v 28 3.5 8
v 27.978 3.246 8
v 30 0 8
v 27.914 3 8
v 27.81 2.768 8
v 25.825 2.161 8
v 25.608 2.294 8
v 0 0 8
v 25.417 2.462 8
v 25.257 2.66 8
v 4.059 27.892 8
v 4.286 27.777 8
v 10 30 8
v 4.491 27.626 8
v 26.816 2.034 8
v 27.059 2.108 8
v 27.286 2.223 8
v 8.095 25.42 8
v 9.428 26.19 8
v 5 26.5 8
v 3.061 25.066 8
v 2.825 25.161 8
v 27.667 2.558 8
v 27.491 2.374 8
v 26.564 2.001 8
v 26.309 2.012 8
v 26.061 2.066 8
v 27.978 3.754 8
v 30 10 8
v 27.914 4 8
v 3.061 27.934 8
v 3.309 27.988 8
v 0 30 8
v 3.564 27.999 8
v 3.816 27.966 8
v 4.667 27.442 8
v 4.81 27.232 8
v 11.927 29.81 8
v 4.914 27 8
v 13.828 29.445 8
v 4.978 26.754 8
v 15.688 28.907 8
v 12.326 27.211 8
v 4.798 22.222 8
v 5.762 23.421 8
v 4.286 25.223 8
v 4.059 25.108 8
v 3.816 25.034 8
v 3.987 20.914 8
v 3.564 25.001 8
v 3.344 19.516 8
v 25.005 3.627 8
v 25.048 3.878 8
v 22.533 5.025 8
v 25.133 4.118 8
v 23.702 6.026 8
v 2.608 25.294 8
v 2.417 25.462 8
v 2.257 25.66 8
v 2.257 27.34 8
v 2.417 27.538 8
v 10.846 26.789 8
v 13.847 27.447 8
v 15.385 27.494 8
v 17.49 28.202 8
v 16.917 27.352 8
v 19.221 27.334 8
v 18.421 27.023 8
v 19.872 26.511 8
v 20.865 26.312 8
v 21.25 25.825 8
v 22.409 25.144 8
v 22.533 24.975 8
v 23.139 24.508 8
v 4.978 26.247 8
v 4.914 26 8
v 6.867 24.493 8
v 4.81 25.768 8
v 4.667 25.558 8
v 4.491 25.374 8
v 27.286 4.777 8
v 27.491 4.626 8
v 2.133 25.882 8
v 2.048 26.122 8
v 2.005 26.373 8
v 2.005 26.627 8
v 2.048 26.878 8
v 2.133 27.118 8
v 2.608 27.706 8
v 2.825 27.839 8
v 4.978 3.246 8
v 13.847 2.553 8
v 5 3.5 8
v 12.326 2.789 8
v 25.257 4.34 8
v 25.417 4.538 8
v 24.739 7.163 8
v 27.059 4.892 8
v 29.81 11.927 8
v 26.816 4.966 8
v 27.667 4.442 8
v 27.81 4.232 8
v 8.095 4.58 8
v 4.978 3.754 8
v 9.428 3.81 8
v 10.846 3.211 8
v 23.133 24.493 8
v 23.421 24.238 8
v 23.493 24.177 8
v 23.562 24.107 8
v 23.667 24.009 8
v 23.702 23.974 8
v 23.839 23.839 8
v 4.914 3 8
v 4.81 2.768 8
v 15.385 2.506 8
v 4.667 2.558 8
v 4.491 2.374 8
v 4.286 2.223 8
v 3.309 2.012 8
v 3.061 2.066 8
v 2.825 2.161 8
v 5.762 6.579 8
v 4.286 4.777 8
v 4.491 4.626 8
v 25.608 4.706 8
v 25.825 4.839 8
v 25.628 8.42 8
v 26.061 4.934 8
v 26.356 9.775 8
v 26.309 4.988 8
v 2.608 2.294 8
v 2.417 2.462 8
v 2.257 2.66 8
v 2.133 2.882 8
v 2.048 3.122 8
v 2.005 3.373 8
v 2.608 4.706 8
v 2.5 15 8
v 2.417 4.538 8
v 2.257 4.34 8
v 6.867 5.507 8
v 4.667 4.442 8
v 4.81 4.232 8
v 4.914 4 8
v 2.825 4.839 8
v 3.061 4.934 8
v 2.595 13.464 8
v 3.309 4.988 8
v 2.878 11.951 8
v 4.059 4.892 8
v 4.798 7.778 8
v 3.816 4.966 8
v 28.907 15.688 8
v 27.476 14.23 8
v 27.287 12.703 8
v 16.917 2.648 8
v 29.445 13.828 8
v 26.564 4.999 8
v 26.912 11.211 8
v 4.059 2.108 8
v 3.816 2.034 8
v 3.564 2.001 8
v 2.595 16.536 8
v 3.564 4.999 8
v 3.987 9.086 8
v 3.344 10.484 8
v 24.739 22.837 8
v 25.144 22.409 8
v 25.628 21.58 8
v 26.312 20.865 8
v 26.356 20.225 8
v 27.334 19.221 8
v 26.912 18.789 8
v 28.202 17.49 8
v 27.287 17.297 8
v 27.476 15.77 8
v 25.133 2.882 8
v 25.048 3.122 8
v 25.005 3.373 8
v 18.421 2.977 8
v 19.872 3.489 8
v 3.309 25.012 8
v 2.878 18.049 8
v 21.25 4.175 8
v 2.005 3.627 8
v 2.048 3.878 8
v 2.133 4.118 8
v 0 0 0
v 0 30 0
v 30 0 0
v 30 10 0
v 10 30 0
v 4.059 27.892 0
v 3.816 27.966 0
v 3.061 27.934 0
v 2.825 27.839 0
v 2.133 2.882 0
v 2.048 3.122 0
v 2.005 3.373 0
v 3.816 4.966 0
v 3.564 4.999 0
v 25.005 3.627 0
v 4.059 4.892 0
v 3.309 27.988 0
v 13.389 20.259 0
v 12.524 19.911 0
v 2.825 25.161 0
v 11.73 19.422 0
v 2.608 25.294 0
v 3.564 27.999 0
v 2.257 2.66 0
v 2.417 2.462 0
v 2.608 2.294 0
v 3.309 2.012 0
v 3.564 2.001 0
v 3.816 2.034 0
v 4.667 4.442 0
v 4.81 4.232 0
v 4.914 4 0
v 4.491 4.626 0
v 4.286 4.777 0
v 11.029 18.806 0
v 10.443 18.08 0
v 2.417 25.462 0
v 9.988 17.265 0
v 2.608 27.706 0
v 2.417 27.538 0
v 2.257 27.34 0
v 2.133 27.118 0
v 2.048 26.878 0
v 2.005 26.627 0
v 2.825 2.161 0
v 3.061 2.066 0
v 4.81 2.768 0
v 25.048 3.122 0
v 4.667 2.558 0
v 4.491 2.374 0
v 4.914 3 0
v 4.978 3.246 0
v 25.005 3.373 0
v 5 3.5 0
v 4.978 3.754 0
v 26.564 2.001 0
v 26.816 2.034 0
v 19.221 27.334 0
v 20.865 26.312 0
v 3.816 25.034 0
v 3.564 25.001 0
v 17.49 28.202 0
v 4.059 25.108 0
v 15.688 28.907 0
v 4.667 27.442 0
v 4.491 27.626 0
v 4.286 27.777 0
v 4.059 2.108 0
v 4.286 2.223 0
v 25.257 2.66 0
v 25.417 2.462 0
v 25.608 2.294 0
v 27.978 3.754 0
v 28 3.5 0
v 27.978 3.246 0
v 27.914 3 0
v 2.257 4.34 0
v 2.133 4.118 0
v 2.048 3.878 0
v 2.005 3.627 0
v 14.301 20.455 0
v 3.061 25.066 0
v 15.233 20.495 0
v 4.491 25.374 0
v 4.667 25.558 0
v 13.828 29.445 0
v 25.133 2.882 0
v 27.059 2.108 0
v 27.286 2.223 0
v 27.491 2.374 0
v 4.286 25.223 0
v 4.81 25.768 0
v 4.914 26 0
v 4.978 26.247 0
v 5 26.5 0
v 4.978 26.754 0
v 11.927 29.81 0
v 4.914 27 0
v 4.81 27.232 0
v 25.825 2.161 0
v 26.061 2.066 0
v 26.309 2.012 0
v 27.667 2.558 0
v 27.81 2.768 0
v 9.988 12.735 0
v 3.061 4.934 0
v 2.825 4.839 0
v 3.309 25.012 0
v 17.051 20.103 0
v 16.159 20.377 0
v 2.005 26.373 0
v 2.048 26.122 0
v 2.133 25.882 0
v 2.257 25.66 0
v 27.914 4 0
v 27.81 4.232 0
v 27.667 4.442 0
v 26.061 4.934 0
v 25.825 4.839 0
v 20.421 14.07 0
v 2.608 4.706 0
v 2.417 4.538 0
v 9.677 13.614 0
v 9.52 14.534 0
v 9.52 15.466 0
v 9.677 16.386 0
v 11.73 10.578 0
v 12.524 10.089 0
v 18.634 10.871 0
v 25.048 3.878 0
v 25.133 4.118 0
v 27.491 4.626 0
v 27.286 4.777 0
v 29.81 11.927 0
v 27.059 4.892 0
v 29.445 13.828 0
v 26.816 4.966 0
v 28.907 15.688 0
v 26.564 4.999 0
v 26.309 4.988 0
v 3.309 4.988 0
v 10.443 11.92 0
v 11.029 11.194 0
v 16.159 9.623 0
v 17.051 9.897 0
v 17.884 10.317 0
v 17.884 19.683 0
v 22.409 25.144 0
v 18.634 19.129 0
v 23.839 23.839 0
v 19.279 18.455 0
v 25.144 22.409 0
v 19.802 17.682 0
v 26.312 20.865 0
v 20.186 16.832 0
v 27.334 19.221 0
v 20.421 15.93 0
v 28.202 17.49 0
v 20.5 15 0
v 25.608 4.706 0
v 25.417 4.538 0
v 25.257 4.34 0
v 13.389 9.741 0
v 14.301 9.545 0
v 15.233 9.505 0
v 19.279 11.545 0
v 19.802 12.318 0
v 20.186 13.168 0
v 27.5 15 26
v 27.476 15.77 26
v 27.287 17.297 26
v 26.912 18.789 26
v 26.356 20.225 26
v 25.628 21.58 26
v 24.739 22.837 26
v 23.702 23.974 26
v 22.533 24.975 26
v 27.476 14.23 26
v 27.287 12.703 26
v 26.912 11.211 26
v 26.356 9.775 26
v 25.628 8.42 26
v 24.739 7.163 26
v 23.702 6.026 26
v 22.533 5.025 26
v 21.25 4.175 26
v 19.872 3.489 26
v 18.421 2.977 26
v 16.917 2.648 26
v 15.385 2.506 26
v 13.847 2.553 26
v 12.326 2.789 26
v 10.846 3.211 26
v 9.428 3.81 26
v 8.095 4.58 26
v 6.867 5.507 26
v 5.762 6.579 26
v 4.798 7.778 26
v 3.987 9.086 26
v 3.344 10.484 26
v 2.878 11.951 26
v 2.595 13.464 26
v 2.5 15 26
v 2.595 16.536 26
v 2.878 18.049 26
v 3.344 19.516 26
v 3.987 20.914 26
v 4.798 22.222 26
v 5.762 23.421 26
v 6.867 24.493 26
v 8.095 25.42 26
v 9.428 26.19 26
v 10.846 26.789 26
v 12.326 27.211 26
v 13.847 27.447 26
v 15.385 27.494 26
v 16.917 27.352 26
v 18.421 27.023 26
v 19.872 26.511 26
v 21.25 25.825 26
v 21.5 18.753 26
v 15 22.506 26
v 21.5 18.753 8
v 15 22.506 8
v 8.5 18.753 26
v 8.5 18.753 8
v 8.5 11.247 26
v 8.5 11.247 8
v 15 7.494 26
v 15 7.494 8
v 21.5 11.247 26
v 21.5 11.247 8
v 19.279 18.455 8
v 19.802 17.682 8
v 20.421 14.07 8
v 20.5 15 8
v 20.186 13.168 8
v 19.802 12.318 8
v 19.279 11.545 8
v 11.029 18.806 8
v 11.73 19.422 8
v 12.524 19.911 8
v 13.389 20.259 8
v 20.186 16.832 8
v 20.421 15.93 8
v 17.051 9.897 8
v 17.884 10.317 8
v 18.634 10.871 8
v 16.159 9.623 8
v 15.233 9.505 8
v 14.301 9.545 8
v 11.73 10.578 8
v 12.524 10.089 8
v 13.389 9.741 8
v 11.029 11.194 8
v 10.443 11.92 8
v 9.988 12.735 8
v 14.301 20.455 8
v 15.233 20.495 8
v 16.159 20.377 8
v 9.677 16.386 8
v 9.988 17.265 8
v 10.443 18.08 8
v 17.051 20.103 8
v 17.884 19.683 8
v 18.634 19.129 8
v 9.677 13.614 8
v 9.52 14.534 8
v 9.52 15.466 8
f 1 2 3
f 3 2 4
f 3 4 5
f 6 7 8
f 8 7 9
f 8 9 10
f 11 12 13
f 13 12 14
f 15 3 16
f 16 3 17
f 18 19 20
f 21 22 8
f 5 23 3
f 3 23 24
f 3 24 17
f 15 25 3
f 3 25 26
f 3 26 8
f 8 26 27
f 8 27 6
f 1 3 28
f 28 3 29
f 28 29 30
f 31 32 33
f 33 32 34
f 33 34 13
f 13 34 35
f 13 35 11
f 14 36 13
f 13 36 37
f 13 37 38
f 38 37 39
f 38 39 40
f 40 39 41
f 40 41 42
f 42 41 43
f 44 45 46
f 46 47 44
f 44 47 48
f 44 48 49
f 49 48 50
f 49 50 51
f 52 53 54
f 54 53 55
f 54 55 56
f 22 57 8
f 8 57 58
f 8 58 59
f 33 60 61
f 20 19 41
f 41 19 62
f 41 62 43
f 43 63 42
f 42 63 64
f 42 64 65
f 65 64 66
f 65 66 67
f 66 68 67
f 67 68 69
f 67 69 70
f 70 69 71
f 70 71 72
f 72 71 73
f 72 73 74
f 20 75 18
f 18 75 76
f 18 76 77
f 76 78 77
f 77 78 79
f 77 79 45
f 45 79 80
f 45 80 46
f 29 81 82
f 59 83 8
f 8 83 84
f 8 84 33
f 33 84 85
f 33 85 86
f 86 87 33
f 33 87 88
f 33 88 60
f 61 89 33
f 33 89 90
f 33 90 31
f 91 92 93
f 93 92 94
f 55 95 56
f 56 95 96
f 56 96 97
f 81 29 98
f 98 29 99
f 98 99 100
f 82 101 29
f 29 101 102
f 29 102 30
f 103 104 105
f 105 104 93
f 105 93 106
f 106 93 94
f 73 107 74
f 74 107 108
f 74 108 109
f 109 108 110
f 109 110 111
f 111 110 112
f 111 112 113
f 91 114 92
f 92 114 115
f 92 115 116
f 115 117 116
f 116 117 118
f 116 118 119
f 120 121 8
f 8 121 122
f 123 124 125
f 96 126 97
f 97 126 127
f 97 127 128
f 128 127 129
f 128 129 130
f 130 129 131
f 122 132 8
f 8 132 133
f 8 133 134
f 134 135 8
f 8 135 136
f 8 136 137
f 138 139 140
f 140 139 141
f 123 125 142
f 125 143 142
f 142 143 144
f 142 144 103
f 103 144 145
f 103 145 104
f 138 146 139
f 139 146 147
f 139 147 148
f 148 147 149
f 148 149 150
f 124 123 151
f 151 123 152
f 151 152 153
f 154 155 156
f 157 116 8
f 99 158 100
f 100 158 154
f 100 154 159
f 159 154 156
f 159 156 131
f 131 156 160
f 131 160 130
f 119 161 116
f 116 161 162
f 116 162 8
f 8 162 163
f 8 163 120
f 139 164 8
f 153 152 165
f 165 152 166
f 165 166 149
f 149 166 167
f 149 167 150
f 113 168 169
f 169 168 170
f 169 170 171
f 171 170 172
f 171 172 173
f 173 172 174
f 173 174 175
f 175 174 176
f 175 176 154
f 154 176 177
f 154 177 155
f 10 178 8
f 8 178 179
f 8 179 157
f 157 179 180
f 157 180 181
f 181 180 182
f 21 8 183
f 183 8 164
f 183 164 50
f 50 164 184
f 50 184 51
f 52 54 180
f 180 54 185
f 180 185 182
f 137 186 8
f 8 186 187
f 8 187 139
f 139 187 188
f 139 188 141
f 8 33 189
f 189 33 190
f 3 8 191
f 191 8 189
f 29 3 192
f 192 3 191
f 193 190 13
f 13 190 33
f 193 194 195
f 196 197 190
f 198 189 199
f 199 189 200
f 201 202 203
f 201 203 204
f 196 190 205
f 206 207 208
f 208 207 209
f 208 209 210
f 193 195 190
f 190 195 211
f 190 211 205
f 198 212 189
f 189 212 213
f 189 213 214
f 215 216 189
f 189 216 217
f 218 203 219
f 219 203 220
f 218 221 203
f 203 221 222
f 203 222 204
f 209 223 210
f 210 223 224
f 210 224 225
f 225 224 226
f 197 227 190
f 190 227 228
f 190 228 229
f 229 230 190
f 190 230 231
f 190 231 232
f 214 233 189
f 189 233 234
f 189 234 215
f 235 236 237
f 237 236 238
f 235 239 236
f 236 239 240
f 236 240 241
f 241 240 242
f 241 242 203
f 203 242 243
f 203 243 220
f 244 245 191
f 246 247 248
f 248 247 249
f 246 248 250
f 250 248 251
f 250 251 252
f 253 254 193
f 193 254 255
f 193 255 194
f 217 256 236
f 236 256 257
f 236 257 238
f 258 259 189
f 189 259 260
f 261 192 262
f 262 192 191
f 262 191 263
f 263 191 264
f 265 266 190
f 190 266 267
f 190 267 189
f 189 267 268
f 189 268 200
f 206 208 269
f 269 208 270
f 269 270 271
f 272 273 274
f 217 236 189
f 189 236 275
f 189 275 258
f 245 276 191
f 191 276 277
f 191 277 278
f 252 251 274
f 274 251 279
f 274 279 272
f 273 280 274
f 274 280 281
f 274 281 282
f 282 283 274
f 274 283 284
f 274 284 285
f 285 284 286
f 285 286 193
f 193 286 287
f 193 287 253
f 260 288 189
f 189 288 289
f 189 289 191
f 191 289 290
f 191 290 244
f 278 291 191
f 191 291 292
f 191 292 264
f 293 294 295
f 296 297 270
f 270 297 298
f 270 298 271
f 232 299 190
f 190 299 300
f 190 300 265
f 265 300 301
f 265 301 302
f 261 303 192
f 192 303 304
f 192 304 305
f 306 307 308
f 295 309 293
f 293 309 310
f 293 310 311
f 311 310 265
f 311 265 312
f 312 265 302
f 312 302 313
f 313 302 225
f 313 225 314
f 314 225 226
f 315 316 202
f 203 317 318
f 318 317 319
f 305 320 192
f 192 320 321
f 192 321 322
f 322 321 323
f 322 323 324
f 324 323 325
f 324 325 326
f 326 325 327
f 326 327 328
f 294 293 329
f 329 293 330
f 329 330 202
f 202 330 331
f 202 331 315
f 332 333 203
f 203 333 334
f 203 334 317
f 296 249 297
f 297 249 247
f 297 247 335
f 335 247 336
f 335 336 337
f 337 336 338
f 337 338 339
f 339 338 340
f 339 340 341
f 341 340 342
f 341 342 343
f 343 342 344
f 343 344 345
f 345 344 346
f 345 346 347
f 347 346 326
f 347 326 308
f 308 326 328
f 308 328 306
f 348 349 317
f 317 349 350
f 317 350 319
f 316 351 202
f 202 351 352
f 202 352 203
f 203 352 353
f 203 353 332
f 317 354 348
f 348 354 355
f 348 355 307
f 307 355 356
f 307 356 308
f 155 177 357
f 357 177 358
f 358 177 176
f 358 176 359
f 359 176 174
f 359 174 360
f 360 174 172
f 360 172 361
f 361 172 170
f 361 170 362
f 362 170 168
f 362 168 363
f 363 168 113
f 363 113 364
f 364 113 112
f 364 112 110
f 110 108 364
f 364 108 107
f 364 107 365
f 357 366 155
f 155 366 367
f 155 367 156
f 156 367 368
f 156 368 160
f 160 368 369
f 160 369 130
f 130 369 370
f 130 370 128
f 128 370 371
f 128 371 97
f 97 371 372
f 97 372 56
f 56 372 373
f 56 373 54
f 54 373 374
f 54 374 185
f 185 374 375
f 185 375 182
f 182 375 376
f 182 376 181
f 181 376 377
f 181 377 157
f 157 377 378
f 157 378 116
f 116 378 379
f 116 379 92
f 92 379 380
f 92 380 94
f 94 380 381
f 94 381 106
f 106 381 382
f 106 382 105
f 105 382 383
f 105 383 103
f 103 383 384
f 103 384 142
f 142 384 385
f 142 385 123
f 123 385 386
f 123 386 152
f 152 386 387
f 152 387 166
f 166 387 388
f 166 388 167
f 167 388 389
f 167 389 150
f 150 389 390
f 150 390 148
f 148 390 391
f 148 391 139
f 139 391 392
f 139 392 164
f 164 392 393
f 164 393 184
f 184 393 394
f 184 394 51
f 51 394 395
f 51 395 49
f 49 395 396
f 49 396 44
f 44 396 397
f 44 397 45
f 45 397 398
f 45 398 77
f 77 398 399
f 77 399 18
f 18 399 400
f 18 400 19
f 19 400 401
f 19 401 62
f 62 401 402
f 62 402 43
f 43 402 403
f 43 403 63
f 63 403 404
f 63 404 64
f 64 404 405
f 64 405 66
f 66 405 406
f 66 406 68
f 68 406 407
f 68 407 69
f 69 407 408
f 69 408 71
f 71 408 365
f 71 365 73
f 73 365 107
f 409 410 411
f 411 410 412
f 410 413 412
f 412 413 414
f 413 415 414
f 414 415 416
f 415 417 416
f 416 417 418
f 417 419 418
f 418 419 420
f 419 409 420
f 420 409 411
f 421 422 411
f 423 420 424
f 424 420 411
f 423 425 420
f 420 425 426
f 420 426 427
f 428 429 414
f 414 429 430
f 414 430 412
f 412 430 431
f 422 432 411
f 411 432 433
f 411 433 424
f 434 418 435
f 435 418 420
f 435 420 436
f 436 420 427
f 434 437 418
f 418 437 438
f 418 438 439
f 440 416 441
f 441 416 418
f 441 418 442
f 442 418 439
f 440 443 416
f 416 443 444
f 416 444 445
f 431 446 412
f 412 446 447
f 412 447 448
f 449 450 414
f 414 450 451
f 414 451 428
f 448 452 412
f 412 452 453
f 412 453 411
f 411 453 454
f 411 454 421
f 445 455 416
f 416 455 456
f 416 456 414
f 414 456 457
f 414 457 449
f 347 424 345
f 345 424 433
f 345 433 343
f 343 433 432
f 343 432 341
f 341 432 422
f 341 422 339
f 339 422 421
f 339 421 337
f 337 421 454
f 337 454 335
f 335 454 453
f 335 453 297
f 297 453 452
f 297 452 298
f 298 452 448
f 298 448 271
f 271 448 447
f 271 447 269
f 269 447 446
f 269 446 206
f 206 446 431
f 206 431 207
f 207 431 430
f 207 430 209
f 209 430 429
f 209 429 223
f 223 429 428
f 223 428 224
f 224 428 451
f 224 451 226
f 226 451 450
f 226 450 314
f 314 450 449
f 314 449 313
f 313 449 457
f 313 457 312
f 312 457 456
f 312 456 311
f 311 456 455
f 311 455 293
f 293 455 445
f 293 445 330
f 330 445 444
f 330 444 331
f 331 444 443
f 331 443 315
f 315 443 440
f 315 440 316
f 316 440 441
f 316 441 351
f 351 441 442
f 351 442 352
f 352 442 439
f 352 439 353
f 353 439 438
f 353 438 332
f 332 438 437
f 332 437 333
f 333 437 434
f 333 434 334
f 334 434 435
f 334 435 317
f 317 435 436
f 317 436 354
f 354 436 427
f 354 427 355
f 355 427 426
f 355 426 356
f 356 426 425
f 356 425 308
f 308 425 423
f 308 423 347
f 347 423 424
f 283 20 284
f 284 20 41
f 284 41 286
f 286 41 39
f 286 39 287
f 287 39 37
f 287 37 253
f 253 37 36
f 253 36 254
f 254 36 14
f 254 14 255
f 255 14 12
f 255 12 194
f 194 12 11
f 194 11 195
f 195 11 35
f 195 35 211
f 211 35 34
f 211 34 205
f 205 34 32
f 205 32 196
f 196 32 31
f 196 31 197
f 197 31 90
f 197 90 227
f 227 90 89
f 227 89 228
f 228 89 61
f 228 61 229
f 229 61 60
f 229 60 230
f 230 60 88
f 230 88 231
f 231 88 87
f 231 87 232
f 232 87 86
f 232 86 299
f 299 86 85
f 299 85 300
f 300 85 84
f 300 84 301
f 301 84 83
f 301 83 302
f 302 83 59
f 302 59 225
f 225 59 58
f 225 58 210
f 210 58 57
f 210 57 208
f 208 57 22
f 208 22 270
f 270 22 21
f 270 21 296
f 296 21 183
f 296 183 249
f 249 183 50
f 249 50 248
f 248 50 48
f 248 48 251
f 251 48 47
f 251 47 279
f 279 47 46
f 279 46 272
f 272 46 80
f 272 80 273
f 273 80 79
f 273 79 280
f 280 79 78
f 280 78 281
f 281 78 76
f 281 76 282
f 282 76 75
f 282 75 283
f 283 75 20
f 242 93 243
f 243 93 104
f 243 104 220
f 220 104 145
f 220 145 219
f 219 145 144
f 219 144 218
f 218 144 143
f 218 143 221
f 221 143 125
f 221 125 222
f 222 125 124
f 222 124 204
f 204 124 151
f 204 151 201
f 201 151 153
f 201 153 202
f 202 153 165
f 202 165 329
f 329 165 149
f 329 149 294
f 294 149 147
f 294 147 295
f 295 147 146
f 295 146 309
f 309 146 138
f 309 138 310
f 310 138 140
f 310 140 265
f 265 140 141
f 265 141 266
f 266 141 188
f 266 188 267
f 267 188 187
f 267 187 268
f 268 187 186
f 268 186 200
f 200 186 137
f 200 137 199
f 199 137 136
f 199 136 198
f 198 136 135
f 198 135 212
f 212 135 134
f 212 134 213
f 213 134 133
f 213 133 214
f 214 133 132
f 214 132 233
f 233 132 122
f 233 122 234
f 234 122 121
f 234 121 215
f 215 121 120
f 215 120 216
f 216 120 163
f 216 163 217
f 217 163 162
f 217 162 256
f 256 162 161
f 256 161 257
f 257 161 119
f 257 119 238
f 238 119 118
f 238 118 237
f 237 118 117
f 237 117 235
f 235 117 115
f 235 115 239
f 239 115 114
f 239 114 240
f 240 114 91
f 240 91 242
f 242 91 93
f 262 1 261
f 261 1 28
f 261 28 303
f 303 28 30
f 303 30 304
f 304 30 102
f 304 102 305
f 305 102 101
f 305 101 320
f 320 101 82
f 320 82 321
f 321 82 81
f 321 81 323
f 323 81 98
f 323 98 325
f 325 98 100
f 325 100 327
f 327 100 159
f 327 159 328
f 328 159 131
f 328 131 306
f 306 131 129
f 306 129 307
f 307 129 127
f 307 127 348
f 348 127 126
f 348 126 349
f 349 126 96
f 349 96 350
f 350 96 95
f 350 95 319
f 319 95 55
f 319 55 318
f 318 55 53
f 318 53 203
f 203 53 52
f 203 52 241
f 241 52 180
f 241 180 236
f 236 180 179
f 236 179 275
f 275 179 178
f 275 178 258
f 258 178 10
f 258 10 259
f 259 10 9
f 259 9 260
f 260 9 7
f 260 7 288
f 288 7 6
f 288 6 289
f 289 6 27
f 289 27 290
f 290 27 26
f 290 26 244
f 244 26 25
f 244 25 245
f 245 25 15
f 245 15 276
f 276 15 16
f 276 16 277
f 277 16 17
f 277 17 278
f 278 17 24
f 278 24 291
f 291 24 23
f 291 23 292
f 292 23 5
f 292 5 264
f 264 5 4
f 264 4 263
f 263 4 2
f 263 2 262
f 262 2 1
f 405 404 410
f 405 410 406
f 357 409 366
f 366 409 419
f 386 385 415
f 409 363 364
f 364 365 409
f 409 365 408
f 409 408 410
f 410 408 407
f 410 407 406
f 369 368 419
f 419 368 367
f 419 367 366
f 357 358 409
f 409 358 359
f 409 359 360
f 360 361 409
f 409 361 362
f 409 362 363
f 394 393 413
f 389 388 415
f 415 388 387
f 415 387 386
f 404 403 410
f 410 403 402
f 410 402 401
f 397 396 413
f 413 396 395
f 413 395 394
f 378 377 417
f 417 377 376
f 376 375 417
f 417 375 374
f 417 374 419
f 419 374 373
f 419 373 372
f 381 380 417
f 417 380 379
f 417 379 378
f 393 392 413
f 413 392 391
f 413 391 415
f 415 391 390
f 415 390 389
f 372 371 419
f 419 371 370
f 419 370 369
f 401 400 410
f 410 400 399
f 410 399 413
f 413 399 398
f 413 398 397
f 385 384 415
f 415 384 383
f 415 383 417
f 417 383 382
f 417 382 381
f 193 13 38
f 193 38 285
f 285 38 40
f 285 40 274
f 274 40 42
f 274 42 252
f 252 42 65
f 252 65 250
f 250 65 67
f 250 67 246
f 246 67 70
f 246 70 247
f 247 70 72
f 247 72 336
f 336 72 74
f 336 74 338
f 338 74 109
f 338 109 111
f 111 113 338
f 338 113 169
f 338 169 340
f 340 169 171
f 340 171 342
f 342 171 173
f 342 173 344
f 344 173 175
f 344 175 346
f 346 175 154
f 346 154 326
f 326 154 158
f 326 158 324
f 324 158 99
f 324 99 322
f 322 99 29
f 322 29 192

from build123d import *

# Parameters (mm, degrees)
IZIM1_W                     = 30
IZIM1_H                     = 30
Y_KSEKLIK_EKSTR_ZYON1_DEPTH = 8
IZIM2_R                     = 12.5
Y_KSEKLIK_EKSTR_ZYON2_DEPTH = 8
IZIM3_R                     = 5.5
KES_EKSTR_ZYON1_DEPTH       = 8
IZIM4_R                     = 1.5
KES_EKSTR_ZYON2_DEPTH       = 8
IZIM5_R                     = 12.5
Y_KSEKLIK_EKSTR_ZYON3_DEPTH = 10
KES_EKSTR_ZYON3_DEPTH       = 10


with BuildPart() as part:
    # Çizim1 → Yükseklik-Ekstrüzyon1 (new body)
    with BuildSketch(Plane.XY):
        with Locations((15, 15)):
            Rectangle(IZIM1_W, IZIM1_H)
    extrude(amount=Y_KSEKLIK_EKSTR_ZYON1_DEPTH)

    # Çizim2 → Yükseklik-Ekstrüzyon2 (add)
    with BuildSketch(Plane.XY.offset(8)):
        with Locations(Location((15, 15, 0), (0, 0, 180))):
            Circle(IZIM2_R)
        Polygon((15, 22.505553499), (8.5, 18.75277675), (8.5, 11.24722325), (15, 7.494446501), (21.5, 11.24722325), (21.5, 18.75277675), align=None, mode=Mode.SUBTRACT)
    extrude(amount=Y_KSEKLIK_EKSTR_ZYON2_DEPTH)

    # Çizim3 → Kes-Ekstrüzyon1 (cut)
    with BuildSketch(Plane.XY.offset(8)):
        with Locations((15, 15)):
            Circle(IZIM3_R)
    extrude(amount=-KES_EKSTR_ZYON1_DEPTH, mode=Mode.SUBTRACT)

    # Çizim4 → Kes-Ekstrüzyon2 (cut)
    with BuildSketch(Plane.XY.offset(8)):
        with Locations((3.5, 26.5)):
            Circle(IZIM4_R)
        with Locations((26.5, 26.5)):
            Circle(IZIM4_R)
        with Locations((26.5, 3.5)):
            Circle(IZIM4_R)
        with Locations((3.5, 3.5)):
            Circle(IZIM4_R)
    extrude(amount=-KES_EKSTR_ZYON2_DEPTH, mode=Mode.SUBTRACT)

    # Çizim5 → Yükseklik-Ekstrüzyon3 (add)
    with BuildSketch(Plane.XY.offset(16)):
        with Locations(Location((15, 15, 0), (0, 0, 180))):
            Circle(IZIM5_R)
        Polygon((15, 22.505553499), (8.5, 18.75277675), (8.5, 11.24722325), (15, 7.494446501), (21.5, 11.24722325), (21.5, 18.75277675), align=None, mode=Mode.SUBTRACT)
    extrude(amount=Y_KSEKLIK_EKSTR_ZYON3_DEPTH)

    # Çizim6 → Kes-Ekstrüzyon3 (cut)
    with BuildSketch(Plane.XY.offset(8)):
        with BuildLine():
            Line((10, 30), (30, 30))
            Line((30, 30), (30, 10))
            ThreePointArc((30, 10), (23.838834765, 23.838834765), (10, 30))
        make_face()
    extrude(amount=-KES_EKSTR_ZYON3_DEPTH, mode=Mode.SUBTRACT)


solid = part.part
